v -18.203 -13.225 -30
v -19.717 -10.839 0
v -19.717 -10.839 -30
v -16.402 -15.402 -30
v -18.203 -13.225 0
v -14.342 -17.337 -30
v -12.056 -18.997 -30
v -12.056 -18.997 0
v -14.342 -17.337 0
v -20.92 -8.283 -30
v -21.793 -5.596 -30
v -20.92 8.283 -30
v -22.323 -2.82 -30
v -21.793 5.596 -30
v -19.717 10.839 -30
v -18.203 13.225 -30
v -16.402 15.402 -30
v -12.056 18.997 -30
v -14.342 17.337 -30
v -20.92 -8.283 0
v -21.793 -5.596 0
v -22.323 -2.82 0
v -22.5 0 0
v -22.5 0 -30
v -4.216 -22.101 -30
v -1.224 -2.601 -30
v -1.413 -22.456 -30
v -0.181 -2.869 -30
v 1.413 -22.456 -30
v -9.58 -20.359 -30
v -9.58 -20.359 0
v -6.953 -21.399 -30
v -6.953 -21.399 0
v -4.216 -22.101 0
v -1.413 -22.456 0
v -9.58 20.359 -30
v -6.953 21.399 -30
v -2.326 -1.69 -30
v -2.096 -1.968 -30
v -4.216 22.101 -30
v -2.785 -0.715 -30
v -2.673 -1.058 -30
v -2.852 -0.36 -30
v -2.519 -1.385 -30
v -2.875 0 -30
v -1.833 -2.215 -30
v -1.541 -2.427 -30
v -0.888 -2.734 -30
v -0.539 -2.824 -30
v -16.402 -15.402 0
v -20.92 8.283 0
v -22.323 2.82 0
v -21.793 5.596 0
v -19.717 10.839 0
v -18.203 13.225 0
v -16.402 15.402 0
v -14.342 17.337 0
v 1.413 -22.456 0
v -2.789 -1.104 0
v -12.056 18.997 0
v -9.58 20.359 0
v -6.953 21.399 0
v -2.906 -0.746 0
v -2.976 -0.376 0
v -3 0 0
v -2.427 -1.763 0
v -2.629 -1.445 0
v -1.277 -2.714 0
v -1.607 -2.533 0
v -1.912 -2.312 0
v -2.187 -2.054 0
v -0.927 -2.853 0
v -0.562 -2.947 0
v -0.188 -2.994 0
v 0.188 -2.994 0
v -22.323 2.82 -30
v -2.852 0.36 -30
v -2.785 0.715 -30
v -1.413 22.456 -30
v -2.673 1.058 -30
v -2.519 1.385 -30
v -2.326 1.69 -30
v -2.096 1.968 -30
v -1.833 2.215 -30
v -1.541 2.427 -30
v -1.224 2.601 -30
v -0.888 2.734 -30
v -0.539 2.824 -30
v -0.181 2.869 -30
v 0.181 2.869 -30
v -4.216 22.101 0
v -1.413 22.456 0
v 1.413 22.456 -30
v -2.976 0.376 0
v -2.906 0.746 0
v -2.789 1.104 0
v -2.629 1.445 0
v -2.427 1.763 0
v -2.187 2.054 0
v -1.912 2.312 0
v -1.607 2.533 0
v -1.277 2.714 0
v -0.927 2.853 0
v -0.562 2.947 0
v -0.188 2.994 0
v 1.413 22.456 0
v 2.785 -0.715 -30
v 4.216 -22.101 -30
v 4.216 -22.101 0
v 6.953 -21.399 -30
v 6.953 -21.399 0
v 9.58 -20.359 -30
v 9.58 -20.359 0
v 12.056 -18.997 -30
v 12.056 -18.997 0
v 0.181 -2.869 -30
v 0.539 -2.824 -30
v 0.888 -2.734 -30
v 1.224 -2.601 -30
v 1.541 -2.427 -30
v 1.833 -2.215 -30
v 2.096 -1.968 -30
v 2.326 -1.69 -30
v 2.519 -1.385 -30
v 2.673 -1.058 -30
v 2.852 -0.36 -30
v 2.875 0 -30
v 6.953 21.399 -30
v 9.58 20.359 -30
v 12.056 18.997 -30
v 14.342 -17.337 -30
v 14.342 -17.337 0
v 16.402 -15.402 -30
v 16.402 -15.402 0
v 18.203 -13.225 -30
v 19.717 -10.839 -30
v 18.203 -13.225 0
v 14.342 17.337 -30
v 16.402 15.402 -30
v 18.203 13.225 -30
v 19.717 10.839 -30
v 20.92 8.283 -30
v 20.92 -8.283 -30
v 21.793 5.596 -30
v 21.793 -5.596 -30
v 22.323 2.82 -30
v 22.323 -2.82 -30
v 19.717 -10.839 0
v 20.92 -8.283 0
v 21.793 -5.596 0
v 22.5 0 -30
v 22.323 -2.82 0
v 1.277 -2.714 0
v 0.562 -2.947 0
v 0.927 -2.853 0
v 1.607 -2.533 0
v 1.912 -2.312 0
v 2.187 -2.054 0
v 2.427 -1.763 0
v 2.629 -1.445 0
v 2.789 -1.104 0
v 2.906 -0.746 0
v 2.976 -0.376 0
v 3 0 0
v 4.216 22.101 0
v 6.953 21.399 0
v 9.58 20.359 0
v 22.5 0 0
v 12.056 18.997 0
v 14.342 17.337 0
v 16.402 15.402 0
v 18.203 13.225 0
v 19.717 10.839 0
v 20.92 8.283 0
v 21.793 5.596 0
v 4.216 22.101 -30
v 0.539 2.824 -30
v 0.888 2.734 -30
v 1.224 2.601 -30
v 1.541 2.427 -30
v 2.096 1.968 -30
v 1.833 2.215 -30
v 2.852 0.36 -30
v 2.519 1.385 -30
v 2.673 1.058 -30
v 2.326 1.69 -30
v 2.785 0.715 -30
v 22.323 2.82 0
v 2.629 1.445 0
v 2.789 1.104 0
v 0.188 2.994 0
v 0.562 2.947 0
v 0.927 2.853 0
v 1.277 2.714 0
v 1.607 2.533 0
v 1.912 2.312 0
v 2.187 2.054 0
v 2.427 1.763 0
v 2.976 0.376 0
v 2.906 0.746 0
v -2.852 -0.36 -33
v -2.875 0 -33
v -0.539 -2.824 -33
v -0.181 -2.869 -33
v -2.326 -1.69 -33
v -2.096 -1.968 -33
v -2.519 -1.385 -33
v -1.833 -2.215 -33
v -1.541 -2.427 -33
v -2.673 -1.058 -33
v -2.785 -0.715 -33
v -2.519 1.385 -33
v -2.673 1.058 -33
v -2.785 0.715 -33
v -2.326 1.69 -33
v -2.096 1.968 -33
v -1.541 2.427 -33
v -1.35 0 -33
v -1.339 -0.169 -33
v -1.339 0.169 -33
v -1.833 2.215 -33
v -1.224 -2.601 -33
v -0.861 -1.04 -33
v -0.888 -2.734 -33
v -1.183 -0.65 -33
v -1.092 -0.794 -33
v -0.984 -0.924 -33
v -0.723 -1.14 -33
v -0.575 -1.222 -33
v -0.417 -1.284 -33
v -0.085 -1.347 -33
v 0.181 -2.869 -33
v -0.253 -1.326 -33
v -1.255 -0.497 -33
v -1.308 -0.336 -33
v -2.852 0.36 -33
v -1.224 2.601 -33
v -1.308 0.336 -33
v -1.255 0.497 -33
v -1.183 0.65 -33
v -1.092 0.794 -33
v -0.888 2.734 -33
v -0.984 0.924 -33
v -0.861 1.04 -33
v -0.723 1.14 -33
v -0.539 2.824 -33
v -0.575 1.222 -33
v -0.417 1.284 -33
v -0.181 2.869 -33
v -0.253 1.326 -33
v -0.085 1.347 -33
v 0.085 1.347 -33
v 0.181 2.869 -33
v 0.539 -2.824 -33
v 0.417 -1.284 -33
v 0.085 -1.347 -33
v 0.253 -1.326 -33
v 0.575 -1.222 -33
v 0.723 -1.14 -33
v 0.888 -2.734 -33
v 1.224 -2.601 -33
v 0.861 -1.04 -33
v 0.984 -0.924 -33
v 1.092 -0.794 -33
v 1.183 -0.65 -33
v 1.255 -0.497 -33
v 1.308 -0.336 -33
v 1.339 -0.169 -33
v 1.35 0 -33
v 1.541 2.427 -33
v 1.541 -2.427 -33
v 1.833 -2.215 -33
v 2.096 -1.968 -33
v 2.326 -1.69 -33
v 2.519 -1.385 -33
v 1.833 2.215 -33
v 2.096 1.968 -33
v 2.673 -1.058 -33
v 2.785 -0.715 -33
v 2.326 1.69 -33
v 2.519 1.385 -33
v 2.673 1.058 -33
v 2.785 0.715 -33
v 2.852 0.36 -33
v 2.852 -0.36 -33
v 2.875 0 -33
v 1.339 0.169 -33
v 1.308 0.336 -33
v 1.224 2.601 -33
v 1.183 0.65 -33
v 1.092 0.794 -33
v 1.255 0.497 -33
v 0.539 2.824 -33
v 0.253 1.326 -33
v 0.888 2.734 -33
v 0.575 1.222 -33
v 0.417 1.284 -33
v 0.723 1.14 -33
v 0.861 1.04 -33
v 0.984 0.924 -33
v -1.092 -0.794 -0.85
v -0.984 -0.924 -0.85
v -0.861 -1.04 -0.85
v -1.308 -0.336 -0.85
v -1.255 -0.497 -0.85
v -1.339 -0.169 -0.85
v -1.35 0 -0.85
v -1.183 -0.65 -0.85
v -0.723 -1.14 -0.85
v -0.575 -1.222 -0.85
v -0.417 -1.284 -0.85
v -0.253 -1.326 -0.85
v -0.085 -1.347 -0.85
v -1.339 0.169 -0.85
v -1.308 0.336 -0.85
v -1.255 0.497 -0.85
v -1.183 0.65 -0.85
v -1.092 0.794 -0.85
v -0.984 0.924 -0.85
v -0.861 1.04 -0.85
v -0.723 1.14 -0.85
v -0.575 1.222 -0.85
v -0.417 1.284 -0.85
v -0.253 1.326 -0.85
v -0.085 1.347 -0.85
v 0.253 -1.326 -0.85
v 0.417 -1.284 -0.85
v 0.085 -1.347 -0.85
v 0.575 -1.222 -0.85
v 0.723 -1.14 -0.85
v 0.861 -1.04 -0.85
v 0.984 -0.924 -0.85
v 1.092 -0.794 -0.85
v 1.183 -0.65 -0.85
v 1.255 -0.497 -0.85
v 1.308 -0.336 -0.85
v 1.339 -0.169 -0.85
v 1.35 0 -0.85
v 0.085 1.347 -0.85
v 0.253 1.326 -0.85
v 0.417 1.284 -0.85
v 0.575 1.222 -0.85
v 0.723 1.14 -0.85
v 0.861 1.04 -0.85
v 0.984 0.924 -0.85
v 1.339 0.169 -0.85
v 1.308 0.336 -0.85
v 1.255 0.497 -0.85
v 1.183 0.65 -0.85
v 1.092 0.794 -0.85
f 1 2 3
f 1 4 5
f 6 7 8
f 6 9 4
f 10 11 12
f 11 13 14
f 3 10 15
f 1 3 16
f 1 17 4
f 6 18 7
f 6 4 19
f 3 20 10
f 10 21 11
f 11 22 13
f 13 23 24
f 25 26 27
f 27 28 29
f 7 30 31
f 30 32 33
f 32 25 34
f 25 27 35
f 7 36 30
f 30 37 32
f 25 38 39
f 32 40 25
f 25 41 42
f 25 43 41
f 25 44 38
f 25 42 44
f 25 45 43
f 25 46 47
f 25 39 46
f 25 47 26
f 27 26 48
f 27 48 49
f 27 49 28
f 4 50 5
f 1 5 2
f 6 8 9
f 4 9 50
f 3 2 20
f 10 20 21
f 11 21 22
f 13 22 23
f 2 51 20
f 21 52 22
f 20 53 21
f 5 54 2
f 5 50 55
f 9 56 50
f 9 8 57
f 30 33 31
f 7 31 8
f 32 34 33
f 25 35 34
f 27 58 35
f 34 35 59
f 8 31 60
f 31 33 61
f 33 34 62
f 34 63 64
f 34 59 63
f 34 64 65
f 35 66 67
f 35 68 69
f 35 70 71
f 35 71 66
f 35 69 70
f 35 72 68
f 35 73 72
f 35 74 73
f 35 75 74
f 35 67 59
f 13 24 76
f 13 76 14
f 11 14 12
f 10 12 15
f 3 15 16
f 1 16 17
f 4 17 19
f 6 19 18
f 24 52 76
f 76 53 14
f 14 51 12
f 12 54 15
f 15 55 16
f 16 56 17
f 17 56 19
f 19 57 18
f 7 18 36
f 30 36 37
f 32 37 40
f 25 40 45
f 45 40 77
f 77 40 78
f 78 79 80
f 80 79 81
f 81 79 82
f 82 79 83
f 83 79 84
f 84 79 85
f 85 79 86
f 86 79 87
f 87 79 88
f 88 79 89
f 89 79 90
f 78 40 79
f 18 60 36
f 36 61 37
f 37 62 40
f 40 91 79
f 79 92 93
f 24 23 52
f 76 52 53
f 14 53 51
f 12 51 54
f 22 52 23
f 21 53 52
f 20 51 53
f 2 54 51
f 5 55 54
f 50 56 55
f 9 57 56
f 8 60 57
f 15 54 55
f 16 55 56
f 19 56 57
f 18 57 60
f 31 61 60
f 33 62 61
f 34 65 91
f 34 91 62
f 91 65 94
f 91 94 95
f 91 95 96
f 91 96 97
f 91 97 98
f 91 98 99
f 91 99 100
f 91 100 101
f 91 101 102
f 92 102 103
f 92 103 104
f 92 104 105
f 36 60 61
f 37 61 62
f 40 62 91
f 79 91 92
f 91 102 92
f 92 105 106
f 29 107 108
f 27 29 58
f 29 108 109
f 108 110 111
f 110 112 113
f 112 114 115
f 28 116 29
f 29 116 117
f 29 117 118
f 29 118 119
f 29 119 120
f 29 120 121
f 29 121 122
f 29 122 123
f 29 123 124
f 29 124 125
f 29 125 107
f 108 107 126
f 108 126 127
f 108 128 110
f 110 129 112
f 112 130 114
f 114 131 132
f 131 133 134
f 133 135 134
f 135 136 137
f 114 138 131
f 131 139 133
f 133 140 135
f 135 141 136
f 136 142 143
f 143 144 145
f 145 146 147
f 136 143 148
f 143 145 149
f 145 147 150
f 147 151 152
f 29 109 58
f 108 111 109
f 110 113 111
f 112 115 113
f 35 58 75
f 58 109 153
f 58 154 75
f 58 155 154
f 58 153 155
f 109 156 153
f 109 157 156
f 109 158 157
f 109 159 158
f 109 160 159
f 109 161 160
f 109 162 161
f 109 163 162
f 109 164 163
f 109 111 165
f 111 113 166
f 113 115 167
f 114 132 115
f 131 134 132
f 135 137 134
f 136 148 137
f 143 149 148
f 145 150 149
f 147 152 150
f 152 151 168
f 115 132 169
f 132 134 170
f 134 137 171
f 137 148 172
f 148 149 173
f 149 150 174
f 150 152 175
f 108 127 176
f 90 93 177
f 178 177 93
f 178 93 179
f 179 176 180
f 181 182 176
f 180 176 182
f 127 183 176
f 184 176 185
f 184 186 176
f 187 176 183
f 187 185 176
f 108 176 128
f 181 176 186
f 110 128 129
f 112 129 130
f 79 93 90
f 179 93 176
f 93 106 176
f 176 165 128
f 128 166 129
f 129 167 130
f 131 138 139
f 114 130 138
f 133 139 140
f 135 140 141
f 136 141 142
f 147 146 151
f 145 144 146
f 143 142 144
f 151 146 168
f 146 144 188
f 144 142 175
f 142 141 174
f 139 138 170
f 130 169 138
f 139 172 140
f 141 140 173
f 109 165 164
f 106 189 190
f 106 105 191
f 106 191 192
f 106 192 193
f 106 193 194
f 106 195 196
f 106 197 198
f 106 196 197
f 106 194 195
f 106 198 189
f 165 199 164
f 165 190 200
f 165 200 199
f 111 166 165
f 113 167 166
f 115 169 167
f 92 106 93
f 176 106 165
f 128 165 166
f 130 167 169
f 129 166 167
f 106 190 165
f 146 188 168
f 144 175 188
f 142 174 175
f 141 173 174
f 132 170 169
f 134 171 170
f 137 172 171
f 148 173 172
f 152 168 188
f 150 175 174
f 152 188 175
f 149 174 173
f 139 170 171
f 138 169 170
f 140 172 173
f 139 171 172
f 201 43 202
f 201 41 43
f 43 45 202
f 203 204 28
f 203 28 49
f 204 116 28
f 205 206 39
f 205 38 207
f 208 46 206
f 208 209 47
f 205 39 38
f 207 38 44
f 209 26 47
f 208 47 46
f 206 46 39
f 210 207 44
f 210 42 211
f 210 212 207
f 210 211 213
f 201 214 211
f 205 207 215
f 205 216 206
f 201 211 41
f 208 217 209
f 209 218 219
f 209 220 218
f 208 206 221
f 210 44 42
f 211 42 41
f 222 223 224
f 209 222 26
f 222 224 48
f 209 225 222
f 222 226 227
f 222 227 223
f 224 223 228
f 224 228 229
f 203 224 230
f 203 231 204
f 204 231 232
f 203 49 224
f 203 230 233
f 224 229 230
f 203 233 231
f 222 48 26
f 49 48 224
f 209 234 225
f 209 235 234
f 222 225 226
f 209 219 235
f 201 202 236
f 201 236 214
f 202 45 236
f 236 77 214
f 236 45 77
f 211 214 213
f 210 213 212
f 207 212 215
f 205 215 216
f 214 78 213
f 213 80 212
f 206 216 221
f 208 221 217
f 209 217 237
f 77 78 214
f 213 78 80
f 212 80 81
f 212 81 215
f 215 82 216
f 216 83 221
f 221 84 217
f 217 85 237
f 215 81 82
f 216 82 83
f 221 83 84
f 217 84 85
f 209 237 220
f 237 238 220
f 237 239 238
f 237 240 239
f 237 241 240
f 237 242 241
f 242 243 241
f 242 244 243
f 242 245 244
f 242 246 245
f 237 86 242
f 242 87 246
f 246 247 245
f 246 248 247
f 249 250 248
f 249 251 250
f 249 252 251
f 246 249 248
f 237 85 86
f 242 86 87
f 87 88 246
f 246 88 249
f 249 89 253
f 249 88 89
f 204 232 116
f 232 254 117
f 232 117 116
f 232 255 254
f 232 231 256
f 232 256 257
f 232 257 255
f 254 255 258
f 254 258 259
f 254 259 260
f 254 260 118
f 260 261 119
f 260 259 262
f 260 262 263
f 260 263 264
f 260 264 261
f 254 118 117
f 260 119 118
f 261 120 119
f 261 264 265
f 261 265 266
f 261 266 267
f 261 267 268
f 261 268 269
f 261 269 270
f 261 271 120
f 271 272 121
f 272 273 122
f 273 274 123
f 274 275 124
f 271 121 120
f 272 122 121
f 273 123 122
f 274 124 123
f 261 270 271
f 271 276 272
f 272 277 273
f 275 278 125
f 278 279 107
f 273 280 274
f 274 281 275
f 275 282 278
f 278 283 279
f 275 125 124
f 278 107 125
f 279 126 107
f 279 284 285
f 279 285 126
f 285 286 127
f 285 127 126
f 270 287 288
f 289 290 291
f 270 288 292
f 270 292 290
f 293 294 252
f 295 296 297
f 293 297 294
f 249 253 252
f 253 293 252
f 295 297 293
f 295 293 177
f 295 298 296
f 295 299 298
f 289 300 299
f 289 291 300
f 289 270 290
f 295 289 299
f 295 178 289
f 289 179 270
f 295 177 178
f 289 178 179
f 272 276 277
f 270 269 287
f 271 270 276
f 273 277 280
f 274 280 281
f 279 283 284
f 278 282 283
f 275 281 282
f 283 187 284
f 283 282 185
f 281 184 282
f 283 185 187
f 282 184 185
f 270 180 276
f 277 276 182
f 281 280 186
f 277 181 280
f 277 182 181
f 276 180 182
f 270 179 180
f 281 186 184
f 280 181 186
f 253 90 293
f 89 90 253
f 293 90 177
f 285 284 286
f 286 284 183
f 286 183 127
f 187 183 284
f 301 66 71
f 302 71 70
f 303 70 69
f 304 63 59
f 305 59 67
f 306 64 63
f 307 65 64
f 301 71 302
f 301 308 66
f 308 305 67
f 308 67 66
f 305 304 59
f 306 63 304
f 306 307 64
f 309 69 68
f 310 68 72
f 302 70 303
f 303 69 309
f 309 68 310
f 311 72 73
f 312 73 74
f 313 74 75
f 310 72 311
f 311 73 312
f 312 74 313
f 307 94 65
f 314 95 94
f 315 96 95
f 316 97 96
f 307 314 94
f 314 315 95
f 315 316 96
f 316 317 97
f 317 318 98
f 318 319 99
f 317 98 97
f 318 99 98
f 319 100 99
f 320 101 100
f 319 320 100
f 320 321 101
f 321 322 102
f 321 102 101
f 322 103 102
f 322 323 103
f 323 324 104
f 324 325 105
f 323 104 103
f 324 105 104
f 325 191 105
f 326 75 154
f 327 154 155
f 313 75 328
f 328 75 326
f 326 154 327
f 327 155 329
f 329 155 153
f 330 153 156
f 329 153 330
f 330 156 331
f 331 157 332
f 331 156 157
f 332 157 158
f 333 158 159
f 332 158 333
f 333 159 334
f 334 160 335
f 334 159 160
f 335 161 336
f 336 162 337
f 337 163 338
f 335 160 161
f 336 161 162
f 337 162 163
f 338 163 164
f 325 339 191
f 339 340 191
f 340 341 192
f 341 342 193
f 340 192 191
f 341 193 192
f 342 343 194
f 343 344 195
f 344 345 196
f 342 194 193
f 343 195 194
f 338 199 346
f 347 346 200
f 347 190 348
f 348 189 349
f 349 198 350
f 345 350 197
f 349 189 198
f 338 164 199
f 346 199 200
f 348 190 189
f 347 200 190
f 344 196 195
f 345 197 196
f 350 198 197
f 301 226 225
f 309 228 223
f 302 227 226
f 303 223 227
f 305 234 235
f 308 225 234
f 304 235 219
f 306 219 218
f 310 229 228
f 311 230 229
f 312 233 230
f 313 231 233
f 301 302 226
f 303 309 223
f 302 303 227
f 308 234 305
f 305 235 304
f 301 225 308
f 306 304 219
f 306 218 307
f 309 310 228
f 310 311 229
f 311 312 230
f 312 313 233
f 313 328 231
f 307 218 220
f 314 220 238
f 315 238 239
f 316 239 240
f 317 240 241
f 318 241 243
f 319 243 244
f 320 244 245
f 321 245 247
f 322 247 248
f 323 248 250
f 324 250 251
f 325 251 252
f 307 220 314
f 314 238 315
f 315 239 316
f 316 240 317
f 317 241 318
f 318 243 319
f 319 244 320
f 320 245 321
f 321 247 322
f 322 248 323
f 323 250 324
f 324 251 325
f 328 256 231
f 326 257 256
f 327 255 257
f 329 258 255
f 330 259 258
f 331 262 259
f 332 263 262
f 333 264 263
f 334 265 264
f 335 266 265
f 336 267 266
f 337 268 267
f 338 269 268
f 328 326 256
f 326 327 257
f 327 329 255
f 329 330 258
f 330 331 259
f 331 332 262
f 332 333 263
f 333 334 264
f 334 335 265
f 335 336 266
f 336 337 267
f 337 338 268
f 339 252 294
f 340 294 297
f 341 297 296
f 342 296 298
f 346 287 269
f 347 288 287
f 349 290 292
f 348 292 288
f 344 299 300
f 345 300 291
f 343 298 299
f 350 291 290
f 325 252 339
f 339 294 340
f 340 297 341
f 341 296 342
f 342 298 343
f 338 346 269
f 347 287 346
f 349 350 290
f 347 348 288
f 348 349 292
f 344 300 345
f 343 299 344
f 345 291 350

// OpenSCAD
$fn = 50;

difference() {
	union() {
		translate(v = [0, 0, -30.0]) {
			cylinder(h = 30, r = 22.5);
		}
		#translate(v = [0, 0, -33.0]) {
			cylinder(h = 33, r = 2.875);
		}
	}
	union() {
		translate(v = [0, 0, 0]) {
			rotate(a = [0, 0, 0]) {
				difference() {
					union() {
						translate(v = [0, 0, -33.0]) {
							cylinder(h = 33, r = 1.0);
						}
						translate(v = [0, 0, -0.85]) {
							cylinder(h = 0.85, r1 = 1.35, r2 = 3.0);
						}
						translate(v = [0, 0, -33.0]) {
							cylinder(h = 33, r = 1.35);
						}
						translate(v = [0, 0, -33.0]) {
							cylinder(h = 33, r = 1.0);
						}
					}
					union();
				}
			}
		}
	}
}
